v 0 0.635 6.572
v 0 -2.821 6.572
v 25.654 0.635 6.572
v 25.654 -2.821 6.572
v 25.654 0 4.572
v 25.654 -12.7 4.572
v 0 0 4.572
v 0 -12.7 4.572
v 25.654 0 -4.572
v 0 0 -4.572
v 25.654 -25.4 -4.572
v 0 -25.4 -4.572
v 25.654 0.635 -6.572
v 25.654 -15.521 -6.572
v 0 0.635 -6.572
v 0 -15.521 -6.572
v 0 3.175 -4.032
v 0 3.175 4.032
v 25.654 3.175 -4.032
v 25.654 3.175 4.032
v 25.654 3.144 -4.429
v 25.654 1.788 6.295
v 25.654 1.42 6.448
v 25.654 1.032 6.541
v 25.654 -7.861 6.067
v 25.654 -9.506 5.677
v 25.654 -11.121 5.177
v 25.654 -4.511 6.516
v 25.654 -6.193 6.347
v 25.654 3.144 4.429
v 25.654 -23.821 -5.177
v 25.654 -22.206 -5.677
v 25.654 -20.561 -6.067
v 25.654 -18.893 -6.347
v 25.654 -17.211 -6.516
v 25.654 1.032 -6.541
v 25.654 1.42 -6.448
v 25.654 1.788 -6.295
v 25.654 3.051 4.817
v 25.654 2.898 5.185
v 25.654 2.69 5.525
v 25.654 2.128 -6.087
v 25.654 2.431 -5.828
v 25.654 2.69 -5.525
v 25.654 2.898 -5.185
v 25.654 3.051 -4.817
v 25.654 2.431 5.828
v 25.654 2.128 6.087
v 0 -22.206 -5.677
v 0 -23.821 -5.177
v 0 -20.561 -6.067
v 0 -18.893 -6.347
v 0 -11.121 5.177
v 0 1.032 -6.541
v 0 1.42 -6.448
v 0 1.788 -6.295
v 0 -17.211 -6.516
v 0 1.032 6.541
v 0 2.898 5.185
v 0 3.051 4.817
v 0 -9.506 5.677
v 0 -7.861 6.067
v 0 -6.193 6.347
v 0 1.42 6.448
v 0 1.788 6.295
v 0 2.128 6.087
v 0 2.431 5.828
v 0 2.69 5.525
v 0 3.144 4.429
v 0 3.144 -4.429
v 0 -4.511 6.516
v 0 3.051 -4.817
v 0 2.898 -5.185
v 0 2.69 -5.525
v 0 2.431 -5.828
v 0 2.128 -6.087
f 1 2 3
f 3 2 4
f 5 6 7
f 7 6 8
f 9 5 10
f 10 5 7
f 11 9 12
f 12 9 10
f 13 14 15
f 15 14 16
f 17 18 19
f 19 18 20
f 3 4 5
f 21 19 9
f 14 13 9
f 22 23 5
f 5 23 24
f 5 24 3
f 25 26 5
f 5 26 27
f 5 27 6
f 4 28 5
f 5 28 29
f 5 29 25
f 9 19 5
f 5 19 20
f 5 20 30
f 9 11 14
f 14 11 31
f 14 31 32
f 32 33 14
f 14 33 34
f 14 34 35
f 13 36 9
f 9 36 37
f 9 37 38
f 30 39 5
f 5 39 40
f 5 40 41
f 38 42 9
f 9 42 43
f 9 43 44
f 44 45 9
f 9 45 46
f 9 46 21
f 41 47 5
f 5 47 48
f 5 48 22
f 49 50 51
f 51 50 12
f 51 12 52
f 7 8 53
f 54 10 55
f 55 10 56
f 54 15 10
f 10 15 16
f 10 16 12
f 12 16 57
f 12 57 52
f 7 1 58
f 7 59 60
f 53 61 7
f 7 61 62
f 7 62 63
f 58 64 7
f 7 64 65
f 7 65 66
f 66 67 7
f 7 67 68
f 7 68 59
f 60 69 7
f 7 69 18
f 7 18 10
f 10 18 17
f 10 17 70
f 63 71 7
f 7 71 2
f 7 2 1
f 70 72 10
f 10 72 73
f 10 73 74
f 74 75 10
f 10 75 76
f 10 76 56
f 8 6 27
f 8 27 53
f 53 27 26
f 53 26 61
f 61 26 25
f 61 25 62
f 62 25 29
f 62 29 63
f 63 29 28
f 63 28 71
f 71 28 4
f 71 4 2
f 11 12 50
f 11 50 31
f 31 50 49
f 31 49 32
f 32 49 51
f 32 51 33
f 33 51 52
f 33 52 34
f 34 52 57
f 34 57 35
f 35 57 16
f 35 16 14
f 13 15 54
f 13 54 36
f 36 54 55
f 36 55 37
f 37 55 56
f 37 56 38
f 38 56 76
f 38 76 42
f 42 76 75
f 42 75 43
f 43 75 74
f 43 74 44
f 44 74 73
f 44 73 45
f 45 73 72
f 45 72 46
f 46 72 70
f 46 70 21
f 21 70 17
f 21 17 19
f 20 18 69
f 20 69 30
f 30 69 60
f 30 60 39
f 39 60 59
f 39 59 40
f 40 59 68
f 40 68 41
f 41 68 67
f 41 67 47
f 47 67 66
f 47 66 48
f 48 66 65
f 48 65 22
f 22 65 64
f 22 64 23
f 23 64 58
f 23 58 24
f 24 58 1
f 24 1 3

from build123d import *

# Parameters (mm, degrees)
BOSS_EXTRUDE1_DEPTH = 25.654
FILLET1_R           = 25.4
FILLET2_R           = 2.54


with BuildPart() as part:
    # Sketch1 → Boss-Extrude1 (new body)
    with BuildSketch(Plane(origin=(0, 0, 0), x_dir=(0, 0, -1), z_dir=(1, 0, 0))):
        Polygon((-6.572, -12.7), (-4.572, -12.7), (-4.572, 0), (4.572, 0), (4.572, -25.4), (6.572, -25.4), (6.572, 3.175), (-6.572, 3.175), align=None)
    extrude(amount=BOSS_EXTRUDE1_DEPTH)

    # Fillet1
    # the kernel refuses this fillet: 25.4 mm, written as the material it takes off along each edge
    with BuildSketch(Plane(origin=(-24.69817807, -12.7, 6.572), x_dir=(0, 0, -1), z_dir=(1, 0, 0))) as fillet1_piece_1:
        with BuildLine():
            CenterArc((25.4, 9.879271228), FILLET1_R, 180, 22.889037196)
            Line((0, 9.879271228), (-0.508, 9.879271228))
            Line((-0.508, 9.879271228), (-0.508, 0))
            Line((-0.508, 0), (0, -0.508))
            ThreePointArc((0, -0.508), (1, -0.508), (1.532, -0.197585425))
            Line((1.532, -0.197585425), (2, 0))
        make_face()
    extrude(amount=75.050356141, mode=Mode.SUBTRACT)
    with BuildSketch(Plane(origin=(-24.69817807, -25.4, -6.572), x_dir=(0, 0, 1), z_dir=(1, 0, 0))) as fillet1_piece_2:
        with BuildLine():
            CenterArc((25.4, -9.879271228), FILLET1_R, 157.110962804, 22.889037196)
            Line((0, -9.879271228), (-0.508, -9.879271228))
            Line((-0.508, -9.879271228), (-0.508, 0))
            Line((-0.508, 0), (0, 0.508))
            ThreePointArc((0, 0.508), (1, 0.508), (1.532, 0.197585425))
            Line((1.532, 0.197585425), (2, 0))
        make_face()
    extrude(amount=75.050356141, mode=Mode.SUBTRACT)

    # Fillet2
    fillet2_edges = [part.edges().sort_by_distance(p)[0] for p in [
        (12.827, 3.175, 6.572),
        (12.827, 3.175, -6.572),
    ]]
    fillet(fillet2_edges, radius=FILLET2_R)


solid = part.part
